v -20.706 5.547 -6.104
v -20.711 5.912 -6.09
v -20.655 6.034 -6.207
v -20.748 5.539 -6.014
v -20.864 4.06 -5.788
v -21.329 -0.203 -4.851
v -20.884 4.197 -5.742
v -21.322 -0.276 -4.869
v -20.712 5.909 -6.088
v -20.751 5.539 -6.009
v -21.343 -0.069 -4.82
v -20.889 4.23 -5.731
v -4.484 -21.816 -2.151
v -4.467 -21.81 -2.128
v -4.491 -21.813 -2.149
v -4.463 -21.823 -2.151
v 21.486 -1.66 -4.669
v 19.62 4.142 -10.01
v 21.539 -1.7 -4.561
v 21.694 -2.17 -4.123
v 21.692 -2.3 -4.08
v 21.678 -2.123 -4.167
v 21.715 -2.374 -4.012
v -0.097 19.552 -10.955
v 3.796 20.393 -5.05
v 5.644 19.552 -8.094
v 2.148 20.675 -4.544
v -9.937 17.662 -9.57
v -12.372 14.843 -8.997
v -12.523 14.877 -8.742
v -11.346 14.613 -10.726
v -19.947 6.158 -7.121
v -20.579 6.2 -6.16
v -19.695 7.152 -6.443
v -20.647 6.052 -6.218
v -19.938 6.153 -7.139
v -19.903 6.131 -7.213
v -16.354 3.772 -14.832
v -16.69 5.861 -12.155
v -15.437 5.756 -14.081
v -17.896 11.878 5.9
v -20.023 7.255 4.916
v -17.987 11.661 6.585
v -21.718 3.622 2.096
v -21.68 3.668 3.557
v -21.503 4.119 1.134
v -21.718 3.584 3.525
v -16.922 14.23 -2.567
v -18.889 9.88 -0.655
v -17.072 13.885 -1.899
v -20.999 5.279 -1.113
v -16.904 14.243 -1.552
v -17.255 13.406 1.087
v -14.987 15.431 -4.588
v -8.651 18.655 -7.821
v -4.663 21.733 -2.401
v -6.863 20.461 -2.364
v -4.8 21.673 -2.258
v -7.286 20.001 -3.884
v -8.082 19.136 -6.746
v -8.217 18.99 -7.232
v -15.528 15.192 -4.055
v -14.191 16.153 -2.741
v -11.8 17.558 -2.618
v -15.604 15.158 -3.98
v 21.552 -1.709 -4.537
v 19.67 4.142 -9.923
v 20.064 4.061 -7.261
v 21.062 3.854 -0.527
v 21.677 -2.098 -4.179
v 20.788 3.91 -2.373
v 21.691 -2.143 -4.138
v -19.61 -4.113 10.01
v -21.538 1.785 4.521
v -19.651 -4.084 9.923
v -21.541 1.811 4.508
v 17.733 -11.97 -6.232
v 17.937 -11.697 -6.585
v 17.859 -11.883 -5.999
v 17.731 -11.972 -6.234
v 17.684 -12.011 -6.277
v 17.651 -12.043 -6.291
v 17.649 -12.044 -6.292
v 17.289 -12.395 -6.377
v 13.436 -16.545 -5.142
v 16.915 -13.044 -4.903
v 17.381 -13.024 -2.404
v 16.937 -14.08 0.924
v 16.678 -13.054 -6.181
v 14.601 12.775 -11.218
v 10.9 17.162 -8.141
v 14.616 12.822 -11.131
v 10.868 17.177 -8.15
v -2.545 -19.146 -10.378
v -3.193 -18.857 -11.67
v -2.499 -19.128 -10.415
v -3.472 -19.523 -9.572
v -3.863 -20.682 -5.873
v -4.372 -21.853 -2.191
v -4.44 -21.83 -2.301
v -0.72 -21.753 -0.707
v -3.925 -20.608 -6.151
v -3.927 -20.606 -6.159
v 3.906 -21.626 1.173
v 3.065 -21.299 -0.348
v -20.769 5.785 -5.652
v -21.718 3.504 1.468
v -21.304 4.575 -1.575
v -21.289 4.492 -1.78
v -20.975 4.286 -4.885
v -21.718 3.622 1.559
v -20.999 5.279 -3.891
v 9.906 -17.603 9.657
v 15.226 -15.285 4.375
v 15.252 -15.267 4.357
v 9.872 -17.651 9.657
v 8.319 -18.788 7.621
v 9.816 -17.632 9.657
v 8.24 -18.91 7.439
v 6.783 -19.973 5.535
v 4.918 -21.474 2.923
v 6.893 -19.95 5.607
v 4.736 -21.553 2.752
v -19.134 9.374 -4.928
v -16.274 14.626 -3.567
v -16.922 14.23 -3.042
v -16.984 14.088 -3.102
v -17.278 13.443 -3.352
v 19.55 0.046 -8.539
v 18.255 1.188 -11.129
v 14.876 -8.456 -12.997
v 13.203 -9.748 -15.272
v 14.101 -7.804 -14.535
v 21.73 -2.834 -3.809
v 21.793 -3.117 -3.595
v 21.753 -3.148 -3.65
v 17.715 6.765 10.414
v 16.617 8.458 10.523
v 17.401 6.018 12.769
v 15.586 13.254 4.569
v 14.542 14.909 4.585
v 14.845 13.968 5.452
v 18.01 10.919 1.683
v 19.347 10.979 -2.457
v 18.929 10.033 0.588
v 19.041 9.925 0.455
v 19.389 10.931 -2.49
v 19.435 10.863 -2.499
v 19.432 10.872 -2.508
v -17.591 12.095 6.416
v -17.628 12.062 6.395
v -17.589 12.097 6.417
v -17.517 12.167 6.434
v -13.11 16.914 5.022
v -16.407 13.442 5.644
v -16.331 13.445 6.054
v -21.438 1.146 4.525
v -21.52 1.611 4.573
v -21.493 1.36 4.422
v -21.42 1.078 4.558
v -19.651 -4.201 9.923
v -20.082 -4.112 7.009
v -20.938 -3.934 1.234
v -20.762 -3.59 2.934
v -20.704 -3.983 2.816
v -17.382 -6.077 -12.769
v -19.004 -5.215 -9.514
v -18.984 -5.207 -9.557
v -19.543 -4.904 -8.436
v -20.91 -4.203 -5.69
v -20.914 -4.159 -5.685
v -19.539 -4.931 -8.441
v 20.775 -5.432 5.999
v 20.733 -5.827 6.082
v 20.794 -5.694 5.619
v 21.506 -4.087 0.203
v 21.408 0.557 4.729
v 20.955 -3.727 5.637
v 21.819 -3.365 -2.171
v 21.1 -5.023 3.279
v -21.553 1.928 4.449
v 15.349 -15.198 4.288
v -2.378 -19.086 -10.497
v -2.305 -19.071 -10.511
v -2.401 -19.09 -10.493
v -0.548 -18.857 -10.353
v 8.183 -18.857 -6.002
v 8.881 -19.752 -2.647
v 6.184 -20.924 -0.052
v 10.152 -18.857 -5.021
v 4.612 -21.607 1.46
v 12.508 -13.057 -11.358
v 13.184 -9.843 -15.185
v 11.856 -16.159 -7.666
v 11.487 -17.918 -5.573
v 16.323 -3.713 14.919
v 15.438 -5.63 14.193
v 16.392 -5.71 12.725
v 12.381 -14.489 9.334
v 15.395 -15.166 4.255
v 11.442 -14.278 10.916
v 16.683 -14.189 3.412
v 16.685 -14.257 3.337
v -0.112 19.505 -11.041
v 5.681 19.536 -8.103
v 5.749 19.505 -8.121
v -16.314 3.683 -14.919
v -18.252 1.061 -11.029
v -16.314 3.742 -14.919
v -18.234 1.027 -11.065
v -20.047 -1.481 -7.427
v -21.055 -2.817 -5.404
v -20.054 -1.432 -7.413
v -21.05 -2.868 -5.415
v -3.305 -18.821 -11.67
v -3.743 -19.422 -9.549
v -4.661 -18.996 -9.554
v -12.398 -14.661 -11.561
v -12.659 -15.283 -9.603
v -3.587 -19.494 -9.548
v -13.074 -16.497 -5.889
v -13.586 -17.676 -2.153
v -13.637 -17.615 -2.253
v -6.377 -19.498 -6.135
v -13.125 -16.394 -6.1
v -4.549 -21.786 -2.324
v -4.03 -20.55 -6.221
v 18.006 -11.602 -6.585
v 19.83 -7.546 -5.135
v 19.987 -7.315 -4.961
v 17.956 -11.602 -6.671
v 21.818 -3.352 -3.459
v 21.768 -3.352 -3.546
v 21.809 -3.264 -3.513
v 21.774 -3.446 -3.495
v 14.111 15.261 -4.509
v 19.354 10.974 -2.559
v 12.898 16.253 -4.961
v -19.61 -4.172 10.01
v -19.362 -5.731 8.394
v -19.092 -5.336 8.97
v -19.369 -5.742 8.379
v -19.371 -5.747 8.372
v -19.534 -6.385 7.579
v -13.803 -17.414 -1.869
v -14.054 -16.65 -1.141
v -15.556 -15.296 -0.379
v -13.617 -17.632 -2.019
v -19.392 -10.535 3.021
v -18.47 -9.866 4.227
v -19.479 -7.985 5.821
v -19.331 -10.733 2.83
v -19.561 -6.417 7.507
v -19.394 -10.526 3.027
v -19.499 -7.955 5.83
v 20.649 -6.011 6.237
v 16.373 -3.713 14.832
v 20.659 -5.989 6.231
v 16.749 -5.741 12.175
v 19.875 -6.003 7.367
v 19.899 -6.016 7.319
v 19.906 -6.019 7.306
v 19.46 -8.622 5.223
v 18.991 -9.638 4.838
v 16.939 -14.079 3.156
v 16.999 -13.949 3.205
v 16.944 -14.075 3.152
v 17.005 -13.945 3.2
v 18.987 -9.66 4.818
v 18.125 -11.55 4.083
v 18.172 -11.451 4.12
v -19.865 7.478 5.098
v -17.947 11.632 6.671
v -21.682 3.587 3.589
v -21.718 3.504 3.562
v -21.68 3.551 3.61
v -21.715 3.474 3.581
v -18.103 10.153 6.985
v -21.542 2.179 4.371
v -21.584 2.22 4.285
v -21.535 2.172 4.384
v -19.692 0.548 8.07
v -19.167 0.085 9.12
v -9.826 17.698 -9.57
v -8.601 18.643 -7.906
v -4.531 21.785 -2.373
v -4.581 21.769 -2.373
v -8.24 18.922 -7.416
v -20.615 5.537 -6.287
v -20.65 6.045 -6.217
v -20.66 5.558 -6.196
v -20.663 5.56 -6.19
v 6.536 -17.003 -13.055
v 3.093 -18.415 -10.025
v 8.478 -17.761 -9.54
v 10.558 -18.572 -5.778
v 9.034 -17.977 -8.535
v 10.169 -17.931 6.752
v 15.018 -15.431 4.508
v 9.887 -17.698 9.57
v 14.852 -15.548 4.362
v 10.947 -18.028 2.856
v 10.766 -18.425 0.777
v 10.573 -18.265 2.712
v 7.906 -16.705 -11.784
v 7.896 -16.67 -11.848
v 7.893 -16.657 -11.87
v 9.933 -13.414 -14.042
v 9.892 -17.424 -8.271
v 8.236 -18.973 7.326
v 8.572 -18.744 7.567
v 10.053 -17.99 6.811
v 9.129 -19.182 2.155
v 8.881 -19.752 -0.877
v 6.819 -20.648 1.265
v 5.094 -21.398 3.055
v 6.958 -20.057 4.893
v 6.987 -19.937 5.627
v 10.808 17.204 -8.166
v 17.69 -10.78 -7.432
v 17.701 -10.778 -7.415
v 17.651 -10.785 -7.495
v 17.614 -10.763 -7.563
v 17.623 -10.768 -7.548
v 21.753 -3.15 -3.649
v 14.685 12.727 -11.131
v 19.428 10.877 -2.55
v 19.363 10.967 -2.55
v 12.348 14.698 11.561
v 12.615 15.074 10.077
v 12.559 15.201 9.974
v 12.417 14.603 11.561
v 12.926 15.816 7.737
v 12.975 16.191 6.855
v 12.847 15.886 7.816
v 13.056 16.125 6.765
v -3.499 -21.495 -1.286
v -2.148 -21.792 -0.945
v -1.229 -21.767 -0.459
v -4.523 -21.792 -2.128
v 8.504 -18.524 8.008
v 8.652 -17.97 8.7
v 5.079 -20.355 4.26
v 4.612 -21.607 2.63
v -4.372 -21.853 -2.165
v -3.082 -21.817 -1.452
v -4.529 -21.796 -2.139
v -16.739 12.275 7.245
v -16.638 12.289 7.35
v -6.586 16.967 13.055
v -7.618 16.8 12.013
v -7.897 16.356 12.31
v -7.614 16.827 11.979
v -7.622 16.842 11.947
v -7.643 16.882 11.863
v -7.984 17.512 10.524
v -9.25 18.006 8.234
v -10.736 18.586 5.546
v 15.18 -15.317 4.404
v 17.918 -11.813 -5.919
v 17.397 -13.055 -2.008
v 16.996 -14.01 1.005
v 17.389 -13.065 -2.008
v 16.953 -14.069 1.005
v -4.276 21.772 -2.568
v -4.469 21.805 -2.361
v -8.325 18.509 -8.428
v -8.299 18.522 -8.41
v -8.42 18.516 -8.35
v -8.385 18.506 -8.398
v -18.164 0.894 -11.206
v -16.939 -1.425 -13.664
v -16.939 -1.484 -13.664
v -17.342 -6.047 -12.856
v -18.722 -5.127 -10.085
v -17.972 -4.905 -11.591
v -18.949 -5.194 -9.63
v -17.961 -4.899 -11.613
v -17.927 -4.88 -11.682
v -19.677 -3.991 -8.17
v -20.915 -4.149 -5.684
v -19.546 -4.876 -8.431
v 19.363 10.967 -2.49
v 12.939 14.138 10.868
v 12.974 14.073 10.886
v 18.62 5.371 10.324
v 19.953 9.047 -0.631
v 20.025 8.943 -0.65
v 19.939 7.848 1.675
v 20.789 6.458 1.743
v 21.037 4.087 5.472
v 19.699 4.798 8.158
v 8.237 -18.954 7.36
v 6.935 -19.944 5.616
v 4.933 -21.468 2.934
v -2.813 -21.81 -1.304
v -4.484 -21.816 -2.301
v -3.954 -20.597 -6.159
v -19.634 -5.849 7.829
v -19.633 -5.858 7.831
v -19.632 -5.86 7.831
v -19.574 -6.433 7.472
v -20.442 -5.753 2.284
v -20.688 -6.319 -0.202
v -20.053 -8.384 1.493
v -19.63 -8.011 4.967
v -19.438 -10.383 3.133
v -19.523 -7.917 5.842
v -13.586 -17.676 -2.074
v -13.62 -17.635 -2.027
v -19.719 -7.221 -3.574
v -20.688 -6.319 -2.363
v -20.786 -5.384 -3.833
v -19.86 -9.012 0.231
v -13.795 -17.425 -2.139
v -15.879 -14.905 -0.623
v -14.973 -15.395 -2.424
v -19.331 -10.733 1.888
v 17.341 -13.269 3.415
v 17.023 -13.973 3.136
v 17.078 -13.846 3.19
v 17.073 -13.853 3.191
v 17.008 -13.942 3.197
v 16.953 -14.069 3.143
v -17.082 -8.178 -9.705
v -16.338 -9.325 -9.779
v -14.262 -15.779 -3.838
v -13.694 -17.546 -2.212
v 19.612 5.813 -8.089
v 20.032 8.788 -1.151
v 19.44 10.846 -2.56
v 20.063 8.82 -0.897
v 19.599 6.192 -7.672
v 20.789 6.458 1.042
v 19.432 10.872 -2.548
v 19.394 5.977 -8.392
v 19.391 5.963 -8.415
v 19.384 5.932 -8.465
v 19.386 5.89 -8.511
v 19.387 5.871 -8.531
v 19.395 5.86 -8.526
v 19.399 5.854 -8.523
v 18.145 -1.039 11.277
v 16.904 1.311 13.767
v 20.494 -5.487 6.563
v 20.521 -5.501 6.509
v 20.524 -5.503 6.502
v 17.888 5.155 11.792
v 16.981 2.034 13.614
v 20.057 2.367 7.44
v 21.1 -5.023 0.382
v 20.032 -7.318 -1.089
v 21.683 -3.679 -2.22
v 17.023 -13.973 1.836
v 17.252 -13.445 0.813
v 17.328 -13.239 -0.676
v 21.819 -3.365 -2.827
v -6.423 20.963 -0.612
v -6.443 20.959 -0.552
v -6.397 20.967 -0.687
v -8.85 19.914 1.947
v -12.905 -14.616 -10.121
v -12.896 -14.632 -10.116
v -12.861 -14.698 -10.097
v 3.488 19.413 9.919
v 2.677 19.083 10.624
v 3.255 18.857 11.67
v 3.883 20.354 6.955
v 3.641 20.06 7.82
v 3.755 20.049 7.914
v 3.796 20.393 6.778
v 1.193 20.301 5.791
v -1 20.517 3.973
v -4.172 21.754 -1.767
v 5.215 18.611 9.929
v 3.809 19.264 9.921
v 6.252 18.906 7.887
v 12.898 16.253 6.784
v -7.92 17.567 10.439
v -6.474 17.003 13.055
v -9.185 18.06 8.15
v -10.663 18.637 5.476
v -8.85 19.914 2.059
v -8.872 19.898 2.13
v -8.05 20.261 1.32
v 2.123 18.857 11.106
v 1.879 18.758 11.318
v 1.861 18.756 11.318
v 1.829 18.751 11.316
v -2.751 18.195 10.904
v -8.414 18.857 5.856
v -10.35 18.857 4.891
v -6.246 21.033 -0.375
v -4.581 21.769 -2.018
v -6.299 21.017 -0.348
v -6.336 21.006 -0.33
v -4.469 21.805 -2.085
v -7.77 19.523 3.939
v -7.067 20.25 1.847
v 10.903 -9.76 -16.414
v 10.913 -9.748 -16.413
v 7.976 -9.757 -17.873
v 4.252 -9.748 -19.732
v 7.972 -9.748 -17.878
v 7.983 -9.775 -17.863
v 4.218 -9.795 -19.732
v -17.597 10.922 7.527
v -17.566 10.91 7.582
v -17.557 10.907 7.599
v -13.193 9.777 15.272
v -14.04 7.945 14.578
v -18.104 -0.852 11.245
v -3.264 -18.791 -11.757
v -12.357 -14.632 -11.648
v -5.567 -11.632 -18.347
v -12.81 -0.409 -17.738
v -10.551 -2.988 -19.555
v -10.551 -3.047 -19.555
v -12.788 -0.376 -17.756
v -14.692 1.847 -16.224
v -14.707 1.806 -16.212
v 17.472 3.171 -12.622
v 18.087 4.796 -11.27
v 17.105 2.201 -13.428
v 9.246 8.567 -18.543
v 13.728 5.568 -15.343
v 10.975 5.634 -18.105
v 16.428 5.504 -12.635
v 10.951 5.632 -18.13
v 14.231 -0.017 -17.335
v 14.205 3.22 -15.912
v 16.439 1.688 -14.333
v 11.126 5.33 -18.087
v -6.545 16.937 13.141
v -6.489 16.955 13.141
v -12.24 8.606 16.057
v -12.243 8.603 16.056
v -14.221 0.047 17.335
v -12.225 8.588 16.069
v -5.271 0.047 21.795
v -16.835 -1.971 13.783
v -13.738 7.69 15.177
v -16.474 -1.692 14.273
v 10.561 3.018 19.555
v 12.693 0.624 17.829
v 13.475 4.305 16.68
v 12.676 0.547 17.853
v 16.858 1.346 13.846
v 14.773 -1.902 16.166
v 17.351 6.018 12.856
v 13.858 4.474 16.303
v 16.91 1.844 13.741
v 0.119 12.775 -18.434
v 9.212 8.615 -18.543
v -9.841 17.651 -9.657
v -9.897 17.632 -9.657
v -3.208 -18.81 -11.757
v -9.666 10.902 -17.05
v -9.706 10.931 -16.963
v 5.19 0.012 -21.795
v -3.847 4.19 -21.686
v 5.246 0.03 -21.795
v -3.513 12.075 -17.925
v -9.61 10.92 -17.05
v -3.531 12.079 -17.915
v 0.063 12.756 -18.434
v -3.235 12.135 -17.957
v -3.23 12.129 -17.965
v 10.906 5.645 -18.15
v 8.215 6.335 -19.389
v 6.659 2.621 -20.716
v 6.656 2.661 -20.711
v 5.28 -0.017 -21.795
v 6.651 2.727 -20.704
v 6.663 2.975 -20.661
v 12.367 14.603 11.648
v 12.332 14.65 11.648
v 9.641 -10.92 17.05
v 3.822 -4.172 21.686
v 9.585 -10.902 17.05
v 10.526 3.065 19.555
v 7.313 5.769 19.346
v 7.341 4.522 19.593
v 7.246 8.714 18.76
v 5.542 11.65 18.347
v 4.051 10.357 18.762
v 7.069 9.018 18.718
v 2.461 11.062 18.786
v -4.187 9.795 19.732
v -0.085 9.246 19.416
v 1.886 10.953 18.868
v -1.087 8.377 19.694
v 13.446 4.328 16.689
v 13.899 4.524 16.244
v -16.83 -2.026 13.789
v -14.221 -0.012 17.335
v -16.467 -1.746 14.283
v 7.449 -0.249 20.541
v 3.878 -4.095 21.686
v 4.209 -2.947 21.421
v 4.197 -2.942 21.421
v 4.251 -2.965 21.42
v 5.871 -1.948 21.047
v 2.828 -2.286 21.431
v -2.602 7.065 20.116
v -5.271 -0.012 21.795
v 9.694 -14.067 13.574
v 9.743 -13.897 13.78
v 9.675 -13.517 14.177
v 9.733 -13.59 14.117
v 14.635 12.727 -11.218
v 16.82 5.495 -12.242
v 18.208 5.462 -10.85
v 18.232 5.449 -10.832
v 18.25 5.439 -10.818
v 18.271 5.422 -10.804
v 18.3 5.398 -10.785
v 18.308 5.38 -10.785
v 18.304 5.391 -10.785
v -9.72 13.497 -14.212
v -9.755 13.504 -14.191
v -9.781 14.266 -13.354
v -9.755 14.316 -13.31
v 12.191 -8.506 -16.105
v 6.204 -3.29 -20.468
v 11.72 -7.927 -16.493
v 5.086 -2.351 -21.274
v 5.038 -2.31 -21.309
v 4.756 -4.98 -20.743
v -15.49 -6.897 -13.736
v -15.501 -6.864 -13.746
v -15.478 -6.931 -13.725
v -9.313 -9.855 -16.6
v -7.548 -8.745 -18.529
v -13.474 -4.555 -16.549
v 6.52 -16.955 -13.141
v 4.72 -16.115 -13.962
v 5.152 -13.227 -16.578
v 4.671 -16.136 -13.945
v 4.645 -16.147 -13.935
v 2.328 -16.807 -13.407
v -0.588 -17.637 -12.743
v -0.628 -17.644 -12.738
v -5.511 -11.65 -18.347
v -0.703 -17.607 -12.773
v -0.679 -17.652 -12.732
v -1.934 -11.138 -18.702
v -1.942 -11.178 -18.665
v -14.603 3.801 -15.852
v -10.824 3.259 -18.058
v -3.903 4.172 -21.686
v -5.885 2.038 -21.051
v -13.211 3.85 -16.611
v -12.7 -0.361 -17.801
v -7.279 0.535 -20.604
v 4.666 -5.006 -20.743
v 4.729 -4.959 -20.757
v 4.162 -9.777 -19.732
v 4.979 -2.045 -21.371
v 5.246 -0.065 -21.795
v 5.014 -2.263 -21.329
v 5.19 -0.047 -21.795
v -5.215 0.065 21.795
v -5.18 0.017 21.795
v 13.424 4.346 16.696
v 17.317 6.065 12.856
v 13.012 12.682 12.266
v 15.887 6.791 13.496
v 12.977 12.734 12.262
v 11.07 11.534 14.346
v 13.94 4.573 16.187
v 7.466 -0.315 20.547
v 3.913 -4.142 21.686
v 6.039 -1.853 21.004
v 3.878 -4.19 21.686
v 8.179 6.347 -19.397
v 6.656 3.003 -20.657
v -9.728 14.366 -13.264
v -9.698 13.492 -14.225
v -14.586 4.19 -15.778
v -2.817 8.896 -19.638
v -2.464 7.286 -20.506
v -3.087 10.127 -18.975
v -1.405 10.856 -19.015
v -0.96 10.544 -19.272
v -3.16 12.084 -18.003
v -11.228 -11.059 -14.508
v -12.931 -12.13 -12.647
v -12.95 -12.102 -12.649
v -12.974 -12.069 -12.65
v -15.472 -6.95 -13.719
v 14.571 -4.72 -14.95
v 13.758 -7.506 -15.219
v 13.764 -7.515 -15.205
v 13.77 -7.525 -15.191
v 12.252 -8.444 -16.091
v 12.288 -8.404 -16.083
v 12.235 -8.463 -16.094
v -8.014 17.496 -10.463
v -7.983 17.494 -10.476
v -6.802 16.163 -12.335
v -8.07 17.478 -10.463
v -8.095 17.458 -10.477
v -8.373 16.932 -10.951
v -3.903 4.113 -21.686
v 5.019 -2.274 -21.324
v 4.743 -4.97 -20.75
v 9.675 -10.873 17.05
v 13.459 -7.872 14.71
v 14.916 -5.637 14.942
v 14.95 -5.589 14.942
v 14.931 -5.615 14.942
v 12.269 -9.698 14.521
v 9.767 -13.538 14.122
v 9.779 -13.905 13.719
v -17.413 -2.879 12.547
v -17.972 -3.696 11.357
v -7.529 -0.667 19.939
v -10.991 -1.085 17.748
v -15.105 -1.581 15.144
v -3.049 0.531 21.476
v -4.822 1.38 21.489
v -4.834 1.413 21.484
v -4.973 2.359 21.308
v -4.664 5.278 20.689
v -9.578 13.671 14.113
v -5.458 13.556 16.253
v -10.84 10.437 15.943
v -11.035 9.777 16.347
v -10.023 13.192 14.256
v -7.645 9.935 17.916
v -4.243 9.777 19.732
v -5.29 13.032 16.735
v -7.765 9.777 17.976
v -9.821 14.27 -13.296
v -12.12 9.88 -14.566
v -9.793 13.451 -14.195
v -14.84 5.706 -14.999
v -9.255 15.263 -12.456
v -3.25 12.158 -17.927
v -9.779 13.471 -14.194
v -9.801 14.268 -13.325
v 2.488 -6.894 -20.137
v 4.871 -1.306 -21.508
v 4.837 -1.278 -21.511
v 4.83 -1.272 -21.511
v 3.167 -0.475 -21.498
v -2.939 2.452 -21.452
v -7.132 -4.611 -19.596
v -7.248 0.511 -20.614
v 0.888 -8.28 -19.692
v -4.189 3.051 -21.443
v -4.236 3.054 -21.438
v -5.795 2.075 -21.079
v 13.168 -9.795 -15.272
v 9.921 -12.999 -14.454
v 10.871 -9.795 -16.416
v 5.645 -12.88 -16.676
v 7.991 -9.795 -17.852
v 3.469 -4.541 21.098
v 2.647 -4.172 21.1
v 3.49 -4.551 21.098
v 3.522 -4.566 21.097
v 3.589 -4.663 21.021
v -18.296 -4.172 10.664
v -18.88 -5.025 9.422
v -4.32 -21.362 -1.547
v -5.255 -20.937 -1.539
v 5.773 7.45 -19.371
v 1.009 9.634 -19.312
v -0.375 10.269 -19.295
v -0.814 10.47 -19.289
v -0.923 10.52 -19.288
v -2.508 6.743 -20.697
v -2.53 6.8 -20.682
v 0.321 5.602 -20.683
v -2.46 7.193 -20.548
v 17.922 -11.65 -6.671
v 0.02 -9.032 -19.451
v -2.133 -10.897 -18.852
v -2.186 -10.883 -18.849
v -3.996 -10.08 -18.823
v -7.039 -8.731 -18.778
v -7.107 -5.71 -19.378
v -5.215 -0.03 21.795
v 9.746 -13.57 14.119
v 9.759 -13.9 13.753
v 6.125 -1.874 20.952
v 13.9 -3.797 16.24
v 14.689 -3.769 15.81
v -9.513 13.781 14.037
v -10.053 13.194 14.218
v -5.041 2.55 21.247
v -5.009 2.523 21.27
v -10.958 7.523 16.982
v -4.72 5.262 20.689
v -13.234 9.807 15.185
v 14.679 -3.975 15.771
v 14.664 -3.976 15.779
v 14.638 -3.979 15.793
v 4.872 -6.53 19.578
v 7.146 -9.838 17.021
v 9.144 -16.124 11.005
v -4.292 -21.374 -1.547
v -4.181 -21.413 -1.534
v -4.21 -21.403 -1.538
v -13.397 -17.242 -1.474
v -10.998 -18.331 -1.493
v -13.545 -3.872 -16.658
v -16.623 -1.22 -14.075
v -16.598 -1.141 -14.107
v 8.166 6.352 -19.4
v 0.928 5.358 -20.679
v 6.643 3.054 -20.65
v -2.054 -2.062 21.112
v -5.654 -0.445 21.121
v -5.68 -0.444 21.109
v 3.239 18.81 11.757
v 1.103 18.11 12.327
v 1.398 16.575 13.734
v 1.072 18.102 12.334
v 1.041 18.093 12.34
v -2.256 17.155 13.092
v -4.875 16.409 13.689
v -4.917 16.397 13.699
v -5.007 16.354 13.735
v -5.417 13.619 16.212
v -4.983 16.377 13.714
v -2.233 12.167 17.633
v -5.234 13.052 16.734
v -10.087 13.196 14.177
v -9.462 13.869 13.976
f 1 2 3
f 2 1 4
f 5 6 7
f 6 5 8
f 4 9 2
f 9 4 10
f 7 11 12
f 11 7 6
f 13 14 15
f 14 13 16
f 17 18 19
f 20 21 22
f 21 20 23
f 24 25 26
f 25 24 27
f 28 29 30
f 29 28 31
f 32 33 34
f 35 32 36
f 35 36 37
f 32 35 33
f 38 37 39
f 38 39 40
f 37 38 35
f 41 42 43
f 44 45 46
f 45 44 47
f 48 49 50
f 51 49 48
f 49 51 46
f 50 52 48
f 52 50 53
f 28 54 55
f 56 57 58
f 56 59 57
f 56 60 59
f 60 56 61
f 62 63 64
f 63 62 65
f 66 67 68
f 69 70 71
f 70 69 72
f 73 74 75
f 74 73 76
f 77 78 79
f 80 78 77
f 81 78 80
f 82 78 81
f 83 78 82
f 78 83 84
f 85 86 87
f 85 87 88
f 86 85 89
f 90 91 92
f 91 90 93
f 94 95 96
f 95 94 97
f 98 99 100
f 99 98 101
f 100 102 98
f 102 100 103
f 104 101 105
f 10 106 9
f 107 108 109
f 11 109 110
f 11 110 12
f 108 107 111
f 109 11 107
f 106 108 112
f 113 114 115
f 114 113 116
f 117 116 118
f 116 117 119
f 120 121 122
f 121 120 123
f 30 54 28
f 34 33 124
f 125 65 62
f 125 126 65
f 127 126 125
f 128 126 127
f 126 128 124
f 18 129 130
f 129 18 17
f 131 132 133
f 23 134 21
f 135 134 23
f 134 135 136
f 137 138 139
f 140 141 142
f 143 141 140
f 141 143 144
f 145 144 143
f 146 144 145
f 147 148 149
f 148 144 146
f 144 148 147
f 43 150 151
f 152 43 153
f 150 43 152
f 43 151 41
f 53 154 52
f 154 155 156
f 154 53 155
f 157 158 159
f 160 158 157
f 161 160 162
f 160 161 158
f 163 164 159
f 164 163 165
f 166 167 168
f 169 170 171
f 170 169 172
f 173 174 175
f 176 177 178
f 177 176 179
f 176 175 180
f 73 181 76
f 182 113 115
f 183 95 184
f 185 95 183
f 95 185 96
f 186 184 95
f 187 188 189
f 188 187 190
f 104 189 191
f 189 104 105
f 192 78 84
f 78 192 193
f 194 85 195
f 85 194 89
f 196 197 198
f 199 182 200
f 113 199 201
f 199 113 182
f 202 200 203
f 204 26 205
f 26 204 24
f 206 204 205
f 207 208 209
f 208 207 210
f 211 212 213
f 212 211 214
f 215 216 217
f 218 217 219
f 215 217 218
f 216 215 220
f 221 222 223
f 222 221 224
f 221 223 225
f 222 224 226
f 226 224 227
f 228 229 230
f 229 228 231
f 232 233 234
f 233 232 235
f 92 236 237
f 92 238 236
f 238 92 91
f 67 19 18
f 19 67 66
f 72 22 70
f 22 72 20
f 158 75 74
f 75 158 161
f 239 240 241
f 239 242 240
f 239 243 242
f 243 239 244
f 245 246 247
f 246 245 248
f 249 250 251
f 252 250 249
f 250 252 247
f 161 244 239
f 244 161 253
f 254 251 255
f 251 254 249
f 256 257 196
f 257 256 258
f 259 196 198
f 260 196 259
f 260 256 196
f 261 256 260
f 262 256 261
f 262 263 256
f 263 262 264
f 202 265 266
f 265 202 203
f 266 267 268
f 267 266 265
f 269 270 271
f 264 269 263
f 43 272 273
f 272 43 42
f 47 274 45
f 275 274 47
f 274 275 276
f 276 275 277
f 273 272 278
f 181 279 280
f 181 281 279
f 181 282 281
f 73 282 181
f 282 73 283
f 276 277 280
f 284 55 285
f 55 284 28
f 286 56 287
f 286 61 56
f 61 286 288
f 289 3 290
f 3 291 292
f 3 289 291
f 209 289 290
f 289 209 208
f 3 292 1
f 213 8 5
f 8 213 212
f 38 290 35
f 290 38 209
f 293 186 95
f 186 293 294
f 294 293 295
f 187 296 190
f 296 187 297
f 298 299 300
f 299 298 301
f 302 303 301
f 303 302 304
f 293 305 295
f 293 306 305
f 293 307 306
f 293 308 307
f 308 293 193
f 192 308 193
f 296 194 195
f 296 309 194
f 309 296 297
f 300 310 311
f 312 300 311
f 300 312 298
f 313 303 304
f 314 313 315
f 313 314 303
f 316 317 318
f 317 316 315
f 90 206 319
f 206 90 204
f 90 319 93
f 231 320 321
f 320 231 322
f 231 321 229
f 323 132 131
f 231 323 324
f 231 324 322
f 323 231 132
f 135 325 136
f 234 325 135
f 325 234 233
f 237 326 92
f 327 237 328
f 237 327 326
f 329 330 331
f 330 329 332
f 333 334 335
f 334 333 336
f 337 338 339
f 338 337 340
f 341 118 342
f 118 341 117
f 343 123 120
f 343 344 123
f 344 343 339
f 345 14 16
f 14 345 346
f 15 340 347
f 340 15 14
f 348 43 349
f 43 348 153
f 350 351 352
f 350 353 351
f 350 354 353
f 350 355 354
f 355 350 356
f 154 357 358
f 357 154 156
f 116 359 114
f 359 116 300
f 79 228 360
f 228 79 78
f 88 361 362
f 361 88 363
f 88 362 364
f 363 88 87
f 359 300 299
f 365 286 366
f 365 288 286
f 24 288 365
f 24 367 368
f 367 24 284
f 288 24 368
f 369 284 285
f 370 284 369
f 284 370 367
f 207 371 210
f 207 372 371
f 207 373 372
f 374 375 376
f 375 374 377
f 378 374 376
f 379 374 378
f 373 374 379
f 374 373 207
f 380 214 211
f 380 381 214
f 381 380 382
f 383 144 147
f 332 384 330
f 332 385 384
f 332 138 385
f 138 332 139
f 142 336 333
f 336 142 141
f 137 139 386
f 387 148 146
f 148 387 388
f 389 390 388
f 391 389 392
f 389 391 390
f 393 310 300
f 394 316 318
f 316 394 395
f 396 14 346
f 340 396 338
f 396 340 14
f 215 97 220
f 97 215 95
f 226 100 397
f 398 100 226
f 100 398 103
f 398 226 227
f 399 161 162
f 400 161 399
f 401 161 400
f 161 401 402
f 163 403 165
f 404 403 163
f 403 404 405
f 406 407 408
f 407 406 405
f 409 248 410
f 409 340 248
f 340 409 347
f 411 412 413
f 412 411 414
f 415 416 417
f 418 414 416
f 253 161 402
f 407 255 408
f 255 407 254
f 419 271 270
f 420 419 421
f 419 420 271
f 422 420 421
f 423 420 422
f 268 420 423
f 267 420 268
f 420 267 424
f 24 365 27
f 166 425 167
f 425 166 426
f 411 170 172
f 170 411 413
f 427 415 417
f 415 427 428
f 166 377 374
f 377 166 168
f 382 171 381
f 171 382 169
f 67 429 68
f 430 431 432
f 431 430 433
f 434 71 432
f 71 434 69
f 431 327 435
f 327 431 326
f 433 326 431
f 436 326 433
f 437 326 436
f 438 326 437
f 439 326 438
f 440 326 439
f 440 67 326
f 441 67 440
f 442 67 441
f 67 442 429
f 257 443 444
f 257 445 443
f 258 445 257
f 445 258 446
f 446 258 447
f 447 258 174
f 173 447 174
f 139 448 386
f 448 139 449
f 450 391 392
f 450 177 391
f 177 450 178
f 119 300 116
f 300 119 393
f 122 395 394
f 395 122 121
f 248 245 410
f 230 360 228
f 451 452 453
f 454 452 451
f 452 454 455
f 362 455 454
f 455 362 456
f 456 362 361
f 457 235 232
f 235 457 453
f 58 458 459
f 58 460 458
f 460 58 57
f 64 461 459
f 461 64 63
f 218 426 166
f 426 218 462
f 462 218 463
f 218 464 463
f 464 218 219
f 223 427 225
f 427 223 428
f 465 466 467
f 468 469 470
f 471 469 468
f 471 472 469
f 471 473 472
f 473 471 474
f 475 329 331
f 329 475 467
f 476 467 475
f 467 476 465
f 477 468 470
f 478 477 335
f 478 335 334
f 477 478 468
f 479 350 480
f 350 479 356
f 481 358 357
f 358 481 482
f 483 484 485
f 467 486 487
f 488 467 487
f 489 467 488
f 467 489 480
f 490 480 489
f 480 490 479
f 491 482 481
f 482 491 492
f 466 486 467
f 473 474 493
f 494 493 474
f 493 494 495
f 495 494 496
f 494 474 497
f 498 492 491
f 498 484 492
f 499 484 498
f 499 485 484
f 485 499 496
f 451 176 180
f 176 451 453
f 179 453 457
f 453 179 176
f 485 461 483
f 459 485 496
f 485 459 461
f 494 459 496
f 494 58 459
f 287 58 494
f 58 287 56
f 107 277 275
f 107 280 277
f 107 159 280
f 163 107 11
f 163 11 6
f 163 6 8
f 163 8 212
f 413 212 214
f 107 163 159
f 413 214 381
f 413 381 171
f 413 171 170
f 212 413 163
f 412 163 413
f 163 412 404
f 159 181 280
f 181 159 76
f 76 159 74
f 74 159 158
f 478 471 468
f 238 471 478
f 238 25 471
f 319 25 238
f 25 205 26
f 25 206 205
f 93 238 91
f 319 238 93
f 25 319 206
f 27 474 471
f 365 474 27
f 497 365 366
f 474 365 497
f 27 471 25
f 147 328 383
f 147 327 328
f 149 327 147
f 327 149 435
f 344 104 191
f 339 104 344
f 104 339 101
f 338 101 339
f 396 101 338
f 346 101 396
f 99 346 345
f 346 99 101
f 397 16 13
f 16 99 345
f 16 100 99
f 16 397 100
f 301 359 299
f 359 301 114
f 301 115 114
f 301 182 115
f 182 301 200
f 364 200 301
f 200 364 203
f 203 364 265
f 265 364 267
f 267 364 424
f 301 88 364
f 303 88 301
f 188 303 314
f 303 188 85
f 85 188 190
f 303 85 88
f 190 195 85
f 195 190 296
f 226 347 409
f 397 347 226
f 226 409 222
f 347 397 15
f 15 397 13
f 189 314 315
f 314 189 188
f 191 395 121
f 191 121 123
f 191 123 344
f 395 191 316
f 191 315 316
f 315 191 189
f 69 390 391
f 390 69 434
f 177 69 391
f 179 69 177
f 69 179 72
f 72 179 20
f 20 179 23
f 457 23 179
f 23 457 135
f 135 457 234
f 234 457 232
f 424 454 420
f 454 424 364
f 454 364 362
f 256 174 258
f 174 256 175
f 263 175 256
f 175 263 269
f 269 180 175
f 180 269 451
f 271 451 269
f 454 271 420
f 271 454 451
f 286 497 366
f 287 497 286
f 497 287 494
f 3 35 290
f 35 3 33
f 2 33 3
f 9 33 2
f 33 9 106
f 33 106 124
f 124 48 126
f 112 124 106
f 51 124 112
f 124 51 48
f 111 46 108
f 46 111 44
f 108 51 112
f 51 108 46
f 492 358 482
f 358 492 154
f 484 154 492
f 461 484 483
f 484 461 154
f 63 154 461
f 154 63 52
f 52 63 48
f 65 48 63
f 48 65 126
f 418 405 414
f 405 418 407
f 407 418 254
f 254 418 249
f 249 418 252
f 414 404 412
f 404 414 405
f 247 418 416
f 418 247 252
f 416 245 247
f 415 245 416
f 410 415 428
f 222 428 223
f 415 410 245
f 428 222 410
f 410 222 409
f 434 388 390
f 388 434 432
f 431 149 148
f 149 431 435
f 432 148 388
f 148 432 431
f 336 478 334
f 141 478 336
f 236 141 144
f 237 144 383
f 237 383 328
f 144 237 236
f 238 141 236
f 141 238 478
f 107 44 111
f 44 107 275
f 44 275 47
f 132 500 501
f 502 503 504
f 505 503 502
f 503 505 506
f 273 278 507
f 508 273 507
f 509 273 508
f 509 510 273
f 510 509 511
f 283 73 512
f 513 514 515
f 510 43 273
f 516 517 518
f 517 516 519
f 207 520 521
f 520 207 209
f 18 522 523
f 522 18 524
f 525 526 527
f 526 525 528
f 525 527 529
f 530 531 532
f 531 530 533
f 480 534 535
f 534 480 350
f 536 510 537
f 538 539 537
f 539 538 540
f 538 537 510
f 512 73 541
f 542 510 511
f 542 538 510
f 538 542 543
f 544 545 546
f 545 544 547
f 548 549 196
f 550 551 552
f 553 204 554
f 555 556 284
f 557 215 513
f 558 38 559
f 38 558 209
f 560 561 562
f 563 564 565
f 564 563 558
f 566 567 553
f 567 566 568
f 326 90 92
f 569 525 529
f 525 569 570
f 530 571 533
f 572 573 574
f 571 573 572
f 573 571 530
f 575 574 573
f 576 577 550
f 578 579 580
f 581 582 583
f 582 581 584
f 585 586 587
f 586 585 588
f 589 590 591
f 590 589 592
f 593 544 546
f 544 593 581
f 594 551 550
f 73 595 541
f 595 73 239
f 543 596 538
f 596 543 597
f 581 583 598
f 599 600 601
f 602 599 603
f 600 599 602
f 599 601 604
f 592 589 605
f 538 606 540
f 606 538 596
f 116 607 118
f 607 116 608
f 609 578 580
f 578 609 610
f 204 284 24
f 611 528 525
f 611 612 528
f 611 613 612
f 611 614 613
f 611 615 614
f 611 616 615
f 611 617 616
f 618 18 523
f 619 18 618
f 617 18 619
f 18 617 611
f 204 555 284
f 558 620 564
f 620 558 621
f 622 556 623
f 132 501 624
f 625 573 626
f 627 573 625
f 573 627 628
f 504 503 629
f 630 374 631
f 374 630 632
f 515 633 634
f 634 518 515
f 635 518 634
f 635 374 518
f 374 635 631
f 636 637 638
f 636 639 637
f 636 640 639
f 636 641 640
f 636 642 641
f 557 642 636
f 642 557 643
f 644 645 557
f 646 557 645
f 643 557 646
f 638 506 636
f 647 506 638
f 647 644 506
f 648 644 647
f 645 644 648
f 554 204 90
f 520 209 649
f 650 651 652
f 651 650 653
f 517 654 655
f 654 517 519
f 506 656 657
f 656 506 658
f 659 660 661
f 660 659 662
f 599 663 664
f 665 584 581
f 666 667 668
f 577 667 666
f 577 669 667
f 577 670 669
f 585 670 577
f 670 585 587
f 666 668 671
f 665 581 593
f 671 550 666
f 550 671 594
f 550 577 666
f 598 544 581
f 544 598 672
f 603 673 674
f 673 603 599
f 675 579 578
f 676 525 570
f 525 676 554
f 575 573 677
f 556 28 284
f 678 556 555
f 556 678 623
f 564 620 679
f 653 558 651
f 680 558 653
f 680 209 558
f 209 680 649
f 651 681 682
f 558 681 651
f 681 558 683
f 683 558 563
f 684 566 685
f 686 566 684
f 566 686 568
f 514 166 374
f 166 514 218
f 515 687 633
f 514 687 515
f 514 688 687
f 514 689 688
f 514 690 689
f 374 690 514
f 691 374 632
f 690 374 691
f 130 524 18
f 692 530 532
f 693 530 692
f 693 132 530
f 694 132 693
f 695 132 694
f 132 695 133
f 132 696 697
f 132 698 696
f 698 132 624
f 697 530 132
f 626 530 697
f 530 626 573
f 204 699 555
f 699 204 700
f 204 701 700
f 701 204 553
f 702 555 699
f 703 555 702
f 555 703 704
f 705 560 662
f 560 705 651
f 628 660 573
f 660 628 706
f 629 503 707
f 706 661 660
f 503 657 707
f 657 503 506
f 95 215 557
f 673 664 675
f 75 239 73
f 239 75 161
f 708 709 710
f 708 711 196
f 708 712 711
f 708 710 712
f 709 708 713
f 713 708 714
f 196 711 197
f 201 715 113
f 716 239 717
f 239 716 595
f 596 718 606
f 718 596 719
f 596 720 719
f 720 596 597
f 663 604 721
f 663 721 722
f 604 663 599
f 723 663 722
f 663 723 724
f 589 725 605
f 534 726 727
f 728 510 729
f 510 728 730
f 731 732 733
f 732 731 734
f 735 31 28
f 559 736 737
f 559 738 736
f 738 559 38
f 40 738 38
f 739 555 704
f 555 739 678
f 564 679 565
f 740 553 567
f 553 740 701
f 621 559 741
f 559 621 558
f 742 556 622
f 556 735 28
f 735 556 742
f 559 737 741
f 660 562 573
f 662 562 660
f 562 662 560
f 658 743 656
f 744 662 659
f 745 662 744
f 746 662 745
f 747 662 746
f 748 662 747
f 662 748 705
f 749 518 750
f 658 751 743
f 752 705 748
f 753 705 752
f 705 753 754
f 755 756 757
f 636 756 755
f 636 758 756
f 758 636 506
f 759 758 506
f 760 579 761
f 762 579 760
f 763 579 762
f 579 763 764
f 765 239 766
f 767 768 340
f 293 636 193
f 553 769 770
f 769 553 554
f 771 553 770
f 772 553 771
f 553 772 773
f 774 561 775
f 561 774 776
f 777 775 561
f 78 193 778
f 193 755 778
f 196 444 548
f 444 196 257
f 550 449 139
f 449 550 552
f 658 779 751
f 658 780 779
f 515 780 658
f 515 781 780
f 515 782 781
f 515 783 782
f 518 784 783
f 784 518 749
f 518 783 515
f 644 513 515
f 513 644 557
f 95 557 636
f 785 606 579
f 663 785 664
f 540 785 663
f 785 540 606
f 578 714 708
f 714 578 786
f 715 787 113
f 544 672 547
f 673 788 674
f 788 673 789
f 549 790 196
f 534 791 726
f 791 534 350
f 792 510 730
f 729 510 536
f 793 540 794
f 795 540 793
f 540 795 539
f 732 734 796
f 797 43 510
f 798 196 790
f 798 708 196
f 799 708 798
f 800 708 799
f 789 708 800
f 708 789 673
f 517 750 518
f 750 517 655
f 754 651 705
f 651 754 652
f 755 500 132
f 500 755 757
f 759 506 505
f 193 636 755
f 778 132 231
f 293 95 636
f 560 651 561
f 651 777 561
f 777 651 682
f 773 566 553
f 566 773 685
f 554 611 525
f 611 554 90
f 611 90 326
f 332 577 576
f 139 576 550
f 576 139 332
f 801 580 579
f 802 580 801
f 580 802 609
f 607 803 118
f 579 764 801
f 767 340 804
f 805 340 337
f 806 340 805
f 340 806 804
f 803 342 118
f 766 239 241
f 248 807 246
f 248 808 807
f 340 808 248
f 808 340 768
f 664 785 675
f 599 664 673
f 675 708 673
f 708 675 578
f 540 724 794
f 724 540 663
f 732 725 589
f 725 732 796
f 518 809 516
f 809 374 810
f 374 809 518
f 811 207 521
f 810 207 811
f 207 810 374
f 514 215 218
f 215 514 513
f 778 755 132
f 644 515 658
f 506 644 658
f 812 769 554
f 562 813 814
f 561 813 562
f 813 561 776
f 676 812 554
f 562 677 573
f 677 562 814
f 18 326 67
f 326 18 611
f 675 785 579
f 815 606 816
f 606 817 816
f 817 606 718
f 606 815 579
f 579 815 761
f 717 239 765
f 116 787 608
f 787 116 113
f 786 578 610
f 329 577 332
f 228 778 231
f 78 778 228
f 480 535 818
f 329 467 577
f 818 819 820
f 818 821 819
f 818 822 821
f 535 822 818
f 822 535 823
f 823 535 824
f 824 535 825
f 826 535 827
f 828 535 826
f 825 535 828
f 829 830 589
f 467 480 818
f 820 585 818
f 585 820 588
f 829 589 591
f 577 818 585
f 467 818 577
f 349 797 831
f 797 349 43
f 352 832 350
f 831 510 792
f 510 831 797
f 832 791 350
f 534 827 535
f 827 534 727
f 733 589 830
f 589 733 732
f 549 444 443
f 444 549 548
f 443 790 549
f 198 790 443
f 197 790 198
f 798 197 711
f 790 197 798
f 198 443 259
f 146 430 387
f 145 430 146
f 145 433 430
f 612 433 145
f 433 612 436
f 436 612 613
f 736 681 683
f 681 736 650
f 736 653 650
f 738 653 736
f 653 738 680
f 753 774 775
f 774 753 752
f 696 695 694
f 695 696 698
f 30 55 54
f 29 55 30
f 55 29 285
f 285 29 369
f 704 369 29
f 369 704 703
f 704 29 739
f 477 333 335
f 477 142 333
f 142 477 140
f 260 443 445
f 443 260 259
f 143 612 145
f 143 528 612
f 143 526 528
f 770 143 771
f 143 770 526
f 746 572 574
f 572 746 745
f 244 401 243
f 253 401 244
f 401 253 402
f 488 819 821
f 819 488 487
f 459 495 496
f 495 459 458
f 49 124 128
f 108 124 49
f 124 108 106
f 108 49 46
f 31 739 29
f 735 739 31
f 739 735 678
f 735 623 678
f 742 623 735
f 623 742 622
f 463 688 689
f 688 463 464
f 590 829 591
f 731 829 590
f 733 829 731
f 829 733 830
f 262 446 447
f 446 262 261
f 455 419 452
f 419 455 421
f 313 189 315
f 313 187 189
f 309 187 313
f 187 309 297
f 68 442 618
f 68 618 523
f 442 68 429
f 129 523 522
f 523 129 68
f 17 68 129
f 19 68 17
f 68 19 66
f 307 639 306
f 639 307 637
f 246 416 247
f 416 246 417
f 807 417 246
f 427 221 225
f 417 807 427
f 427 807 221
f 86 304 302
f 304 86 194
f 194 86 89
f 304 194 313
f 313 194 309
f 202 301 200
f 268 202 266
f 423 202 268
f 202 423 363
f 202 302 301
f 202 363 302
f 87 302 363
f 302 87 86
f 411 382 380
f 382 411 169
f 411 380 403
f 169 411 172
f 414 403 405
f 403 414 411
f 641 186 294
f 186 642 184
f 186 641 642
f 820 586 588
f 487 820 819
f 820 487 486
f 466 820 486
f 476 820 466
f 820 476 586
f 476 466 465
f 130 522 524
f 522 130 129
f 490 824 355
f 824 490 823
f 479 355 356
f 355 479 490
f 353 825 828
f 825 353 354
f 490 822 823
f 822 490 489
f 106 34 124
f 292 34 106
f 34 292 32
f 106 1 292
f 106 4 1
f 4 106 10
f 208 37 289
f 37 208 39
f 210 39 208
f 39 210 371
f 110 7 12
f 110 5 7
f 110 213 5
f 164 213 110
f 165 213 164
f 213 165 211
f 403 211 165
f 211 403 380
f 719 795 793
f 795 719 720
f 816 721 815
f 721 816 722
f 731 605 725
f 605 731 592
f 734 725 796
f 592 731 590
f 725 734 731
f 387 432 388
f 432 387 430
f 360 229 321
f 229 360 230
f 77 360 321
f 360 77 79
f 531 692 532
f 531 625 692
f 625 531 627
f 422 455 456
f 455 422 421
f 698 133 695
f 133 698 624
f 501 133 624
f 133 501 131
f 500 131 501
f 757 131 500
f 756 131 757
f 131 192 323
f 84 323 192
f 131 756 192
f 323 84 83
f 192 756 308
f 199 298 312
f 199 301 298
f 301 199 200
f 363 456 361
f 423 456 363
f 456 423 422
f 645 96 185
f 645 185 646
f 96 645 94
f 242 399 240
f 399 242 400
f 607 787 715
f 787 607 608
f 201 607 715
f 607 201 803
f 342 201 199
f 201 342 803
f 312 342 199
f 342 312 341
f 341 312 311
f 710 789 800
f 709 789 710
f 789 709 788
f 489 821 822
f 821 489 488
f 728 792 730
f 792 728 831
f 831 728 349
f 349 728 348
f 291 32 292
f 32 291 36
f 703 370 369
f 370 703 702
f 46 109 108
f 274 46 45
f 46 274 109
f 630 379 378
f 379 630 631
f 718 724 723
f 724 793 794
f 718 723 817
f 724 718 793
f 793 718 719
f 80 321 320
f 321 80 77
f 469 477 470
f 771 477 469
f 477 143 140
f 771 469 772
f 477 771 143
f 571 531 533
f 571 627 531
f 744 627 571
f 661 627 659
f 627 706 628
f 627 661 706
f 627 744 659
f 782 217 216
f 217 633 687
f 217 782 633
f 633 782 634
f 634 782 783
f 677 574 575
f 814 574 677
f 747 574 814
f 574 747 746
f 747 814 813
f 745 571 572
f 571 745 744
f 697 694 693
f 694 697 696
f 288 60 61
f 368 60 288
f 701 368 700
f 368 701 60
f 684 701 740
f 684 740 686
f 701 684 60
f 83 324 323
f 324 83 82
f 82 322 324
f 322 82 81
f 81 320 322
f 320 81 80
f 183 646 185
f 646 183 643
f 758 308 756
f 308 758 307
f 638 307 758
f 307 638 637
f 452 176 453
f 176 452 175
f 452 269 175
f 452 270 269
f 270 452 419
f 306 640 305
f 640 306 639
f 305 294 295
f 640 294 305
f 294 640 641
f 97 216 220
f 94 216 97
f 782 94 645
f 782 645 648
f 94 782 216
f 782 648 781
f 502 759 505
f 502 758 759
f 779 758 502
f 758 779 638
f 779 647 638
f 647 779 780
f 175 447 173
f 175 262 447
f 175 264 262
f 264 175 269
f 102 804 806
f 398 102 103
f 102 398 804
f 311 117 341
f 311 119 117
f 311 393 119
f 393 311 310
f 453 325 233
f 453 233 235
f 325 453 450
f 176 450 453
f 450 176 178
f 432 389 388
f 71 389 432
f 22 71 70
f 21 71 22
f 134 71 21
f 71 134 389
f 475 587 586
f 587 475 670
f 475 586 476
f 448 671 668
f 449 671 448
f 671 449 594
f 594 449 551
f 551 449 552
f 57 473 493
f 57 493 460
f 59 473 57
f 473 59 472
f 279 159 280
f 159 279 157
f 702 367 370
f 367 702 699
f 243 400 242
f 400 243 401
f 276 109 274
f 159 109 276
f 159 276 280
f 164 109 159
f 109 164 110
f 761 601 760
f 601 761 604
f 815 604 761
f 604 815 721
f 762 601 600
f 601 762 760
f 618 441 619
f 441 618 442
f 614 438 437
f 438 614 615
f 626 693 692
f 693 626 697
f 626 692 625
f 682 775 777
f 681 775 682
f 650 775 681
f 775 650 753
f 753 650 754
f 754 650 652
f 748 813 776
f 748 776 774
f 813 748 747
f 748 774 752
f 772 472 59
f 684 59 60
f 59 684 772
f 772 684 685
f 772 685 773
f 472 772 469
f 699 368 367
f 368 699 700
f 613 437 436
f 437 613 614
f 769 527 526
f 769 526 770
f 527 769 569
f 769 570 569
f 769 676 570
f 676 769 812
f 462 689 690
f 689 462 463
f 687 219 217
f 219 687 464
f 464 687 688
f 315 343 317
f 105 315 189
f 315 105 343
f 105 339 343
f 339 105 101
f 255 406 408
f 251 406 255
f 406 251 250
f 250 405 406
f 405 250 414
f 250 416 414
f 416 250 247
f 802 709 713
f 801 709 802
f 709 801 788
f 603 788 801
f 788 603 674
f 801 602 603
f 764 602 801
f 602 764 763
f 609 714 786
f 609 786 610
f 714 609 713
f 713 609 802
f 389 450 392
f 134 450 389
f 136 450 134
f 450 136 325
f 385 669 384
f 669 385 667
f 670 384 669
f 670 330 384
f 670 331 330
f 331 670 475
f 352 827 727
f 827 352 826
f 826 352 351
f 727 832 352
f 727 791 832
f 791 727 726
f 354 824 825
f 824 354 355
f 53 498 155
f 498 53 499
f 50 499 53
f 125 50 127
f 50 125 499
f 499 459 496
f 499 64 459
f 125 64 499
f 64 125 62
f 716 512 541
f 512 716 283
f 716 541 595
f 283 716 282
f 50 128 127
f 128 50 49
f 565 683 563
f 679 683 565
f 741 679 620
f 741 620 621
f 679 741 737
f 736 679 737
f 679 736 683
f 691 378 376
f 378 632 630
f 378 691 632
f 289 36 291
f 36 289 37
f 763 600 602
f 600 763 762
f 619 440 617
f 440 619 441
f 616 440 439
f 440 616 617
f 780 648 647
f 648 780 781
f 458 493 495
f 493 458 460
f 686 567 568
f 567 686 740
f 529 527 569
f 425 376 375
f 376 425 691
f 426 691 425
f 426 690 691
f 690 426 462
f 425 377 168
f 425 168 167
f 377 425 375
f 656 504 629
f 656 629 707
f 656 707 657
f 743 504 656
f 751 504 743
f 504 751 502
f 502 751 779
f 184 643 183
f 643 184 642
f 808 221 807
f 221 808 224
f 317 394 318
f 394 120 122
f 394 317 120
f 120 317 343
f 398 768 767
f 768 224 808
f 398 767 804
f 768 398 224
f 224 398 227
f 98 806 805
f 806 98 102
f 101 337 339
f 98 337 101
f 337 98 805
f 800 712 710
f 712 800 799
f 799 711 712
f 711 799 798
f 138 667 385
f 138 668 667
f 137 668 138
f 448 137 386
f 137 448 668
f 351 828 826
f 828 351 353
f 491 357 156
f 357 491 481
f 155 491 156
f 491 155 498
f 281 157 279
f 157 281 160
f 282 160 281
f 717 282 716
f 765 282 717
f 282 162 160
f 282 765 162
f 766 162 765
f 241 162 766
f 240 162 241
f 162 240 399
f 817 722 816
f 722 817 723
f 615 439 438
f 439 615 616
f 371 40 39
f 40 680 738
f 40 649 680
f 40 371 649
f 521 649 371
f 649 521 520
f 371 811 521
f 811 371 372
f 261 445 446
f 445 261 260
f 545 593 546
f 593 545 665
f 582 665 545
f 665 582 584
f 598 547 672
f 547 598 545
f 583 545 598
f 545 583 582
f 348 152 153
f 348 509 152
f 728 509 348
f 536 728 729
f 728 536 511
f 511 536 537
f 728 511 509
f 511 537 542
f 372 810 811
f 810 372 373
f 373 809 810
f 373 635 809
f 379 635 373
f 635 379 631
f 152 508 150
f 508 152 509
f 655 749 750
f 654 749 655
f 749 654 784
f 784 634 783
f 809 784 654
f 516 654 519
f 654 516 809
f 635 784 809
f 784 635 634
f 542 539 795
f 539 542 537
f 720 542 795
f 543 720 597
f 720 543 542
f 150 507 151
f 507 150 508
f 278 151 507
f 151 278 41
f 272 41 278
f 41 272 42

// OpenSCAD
// Auto-generated OpenSCAD file

    inner_points = 10*[[1.6419395506328012, 0.4602929851836759, -1.4493631210210838], [-2.163745004596259, 0.35631876074276486, 0.40811536788318015], [1.7450099255654523, -0.5220418917143825, -1.2931751335159007], [-2.060674629663608, -0.6260161161552936, 0.5643033553883631], [2.0688511081140133, 0.6458077645062935, -0.5643033553883631], [-1.736833447115047, 0.5418335400653824, 1.2931751335159007], [2.171921483046664, -0.33652711239176486, -0.40811536788318015], [-1.633763072182396, -0.4405013368326759, 1.4493631210210838], [-0.5024600091989292, 0.12040914704172646, -2.1719262545002076], [-1.40086026515404, 0.0958641621658513, -1.7334350643752123], [-0.39938963426627816, -0.861925729856332, -2.0157382669950246], [-1.297789890221389, -0.8864707147322072, -1.5772470768700293], [1.3059663686717942, 0.9062623630832071, 1.5772470768700293], [0.4075661127166832, 0.8817173782073319, 2.0157382669950246], [1.4090367436044453, -0.07607251381485132, 1.7334350643752123], [0.5106364876493342, -0.10061749869072649, 2.1719262545002076], [-0.876874224833509, 1.9854845996807855, -0.5540957539242841], [0.45813914580270193, -2.151207730652403, -0.3309640117084364], [-0.4402611101524089, -2.175752715528278, 0.10752717841655868], [-0.4499626673522969, 2.170999379003403, 0.3309640117084364], [0.885050703283914, -1.9656929513297854, 0.5540957539242841], [-0.01334955267119673, -1.9902379362056606, 0.9925869440492793], [-1.7560539639518336, 1.2513865774351467, 0.5887852848583058], [1.7642304424022388, -1.2315949290841466, -0.5887852848583058], [-1.4862122191449578, -1.3203995186184145, 0.9976907447813188], [0.40781917944265544, -0.29357376199763685, -2.1750805768244144], [-1.94422322614943, -0.3578333666560299, -1.0270957373097849], [1.9523997045998354, 0.3776250150070299, 1.0270957373097849], [-0.3996427009922504, 0.31336541034863685, 2.1750805768244144], [-0.7412023044825446, 1.5441143118102854, -1.4411049979648374], [-0.368290184743018, -2.0100066611413343, -0.8760115505366415], [0.37646666319342303, 2.0297983094923344, 0.8760115505366415], [0.7493787829329497, -1.5243226634592852, 1.4411049979648374], [0.8155102200870809, 0.6014940546947446, -1.9944106598492888], [-2.091774079186868, 0.5220648151297087, -0.57542336107002], [0.9822815899613055, -0.987957164460758, -1.741693187431459], [-1.9250027093126436, -1.0673864040257937, -0.3227058886521901], [1.9331791877630489, 1.0871780523767938, 0.3227058886521901], [-0.9741051115109005, 1.007748812811758, 1.741693187431459], [2.0999505576372735, -0.5022731667787088, 0.57542336107002], [-0.8073337416366758, -0.5817024063437447, 1.9944106598492888], [-0.09476896855450376, 1.0154769637341081, -1.9912563375250816], [-1.5484111181914781, 0.97576234395159, -1.2817626881354474], [0.17507277625237197, -1.5563091323194531, -1.5823508776020687], [-1.2785693733846024, -1.5960237521019711, -0.8728572282124344], [1.2867458518350077, 1.6158154004529712, 0.8728572282124344], [-0.16689629780196688, 1.5761007806704532, 1.5823508776020687], [1.5565875966418834, -0.9559706956005901, 1.2817626881354474], [0.10294544700490885, -0.9956853153831081, 1.9912563375250816], [-1.6840830385424423, 1.4171326318220903, -0.3947534440948942], [1.001502106798092, -1.6975102018305217, -1.0373033387738637], [-1.3505402987939932, -1.761769806488915, 0.11068150074076566], [-0.9933256283476869, 1.7173018501815218, 1.0373033387738637], [1.6922595169928476, -1.3973409834710901, 0.3947534440948942], [-0.659782888599238, -1.4616005881294833, 1.5427382836095238]];

    outer_points = 10*[[-1.4180906408512854, 0.0017142914815234112, 1.7248431734608507], [0.42024133545743264, -0.9747819964248692, -1.9645012743489607], [-1.3152829421925452, 0.9747819964248692, 1.5185186264656285], [0.5230490341161731, -0.0017142914815234112, -2.1708258213441827], [-0.5230490341161731, 0.0017142914815234112, 2.1708258213441827], [1.3152829421925452, -0.9747819964248692, -1.5185186264656285], [-0.42024133545743264, 0.9747819964248692, 1.9645012743489607], [1.4180906408512854, -0.0017142914815234112, -1.7248431734608507], [-2.16411804954985, -0.3712741006106156, -0.40597609206469265], [-1.73014673792946, -0.6017936043327301, -1.276912174159233], [-2.06131035089111, 0.6017936043327301, -0.6123006390599148], [-1.6273390392707197, 0.3712741006106156, -1.4832367211544553], [1.6273390392707197, -0.3712741006106156, 1.4832367211544553], [2.06131035089111, -0.6017936043327301, 0.6123006390599148], [1.73014673792946, 0.6017936043327301, 1.276912174159233], [2.16411804954985, 0.3712741006106156, 0.40597609206469265], [-0.4482853476217299, -2.176250224285918, -0.22145696173963106], [-0.44675625911338257, 2.176250224285918, -0.22452568614370114], [-0.012784947492992194, 1.9457307205638033, -1.0954617682382417], [0.44675625911338257, -2.176250224285918, 0.22452568614370114], [0.4482853476217299, 2.176250224285918, 0.22145696173963106], [0.8822566592421203, 1.9457307205638033, -0.6494791203549095], [0.6504844530956028, -1.6907758622164506, -1.3054558351499], [-0.6504844530956028, 1.6907758622164506, 1.3054558351499], [0.9196385024893416, 0.8567484626800828, -1.845620511896816], [-2.187221299238754, 0.30175394790712673, 0.33327994325880184], [-1.0510696552741998, -0.30175394790712673, -1.9468603216933742], [1.0510696552741998, 0.30175394790712673, 1.9468603216933742], [2.187221299238754, -0.30175394790712673, -0.33327994325880184], [-1.3576055479151603, -1.7602960149199394, -0.21055425340455092], [-0.985643799862681, 1.7602960149199394, -0.9570434771466892], [0.985643799862681, -1.7602960149199394, 0.9570434771466892], [1.3576055479151603, 1.7602960149199394, 0.21055425340455092], [-1.9569781816005838, -0.4142399178844547, 0.9923253824578624], [-0.5526175169122562, -1.1602167020687328, -1.8260829832574081], [-1.790631830865585, 1.1602167020687328, 0.658485252706168], [-0.38627116617725754, 0.4142399178844547, -2.1599231130091026], [0.38627116617725754, -0.4142399178844547, 2.1599231130091026], [1.790631830865585, -1.1602167020687328, -0.658485252706168], [0.5526175169122562, 1.1602167020687328, 1.8260829832574081], [1.9569781816005838, 0.4142399178844547, -0.9923253824578624], [-1.9338749319116801, -1.0872679664021971, 0.2530693471343679], [-1.2316945995675164, -1.4602563584943362, -1.1561348357232673], [-1.6647208825179411, 1.4602563584943362, -0.28709532961254836], [-0.9625405501737774, 1.0872679664021971, -1.6962995124701836], [0.9625405501737774, -1.0872679664021971, 1.6962995124701836], [1.6647208825179411, -1.4602563584943362, 0.28709532961254836], [1.2316945995675164, 1.4602563584943362, 1.1561348357232673], [1.9338749319116801, 1.0872679664021971, -0.2530693471343679], [-0.322374399274086, -1.8762105678603143, -1.1670375440583476], [-1.1258333417686428, 1.8762105678603143, 0.4454224613904398], [0.010318302195911455, 1.2727026720460608, -1.8347178035617362], [1.1258333417686428, -1.8762105678603143, -0.4454224613904398], [0.322374399274086, 1.8762105678603143, 1.1670375440583476], [1.4585260432386402, 1.2727026720460608, -1.1131027208938282]];

    // Convex hull for inner set (I)
    module inner_hull() {
        hull() {
            for (p = inner_points) {
                translate(p) sphere(r=0.1);
            }
        }
    }

    // Convex hull for outer set (O) minus inner hull (O \ I)
    module outer_minus_inner() {
        difference() {
            hull() {
                for (p = outer_points) {
                    translate(p) sphere(r=0.1);
                }
            }
            inner_hull(); // Subtract inner hull
        }
    }

    // Convex hull for outer set (O) minus all translated inner hulls
    module outer_minus_AllTranslationInner() {
        difference() {
            hull() {
                for (p = outer_points) {
                    translate(p) sphere(r=0.1);
                }
            }
            hull() {
                translate([0,0,50]) inner_hull();
                translate([0,0,-50]) inner_hull();
            }; // Subtract translated inner hulls
        }
    }

    // Difference between outer_minus_inner and outer_minus_AllTranslationInner
    module outer_minus_inner_diff() {
        difference() {
            // Outer minus inner
            difference() {
                hull() {
                    for (p = outer_points) {
                        translate(p) sphere(r=0.1);
                    }
                }
                inner_hull();
            }

            // Subtract Outer minus AllTranslationInner
            difference() {
                hull() {
                    for (p = outer_points) {
                        translate(p) sphere(r=0.1);
                    }
                }
                hull() {
                    translate([0,0,50]) inner_hull();
                    translate([0,0,-50]) inner_hull();
                };
            }
        }
    }

    // Rendering all with colors applied
    color([1, 1, 0, 1]) outer_minus_inner_diff(); // Opaque yellow
    
